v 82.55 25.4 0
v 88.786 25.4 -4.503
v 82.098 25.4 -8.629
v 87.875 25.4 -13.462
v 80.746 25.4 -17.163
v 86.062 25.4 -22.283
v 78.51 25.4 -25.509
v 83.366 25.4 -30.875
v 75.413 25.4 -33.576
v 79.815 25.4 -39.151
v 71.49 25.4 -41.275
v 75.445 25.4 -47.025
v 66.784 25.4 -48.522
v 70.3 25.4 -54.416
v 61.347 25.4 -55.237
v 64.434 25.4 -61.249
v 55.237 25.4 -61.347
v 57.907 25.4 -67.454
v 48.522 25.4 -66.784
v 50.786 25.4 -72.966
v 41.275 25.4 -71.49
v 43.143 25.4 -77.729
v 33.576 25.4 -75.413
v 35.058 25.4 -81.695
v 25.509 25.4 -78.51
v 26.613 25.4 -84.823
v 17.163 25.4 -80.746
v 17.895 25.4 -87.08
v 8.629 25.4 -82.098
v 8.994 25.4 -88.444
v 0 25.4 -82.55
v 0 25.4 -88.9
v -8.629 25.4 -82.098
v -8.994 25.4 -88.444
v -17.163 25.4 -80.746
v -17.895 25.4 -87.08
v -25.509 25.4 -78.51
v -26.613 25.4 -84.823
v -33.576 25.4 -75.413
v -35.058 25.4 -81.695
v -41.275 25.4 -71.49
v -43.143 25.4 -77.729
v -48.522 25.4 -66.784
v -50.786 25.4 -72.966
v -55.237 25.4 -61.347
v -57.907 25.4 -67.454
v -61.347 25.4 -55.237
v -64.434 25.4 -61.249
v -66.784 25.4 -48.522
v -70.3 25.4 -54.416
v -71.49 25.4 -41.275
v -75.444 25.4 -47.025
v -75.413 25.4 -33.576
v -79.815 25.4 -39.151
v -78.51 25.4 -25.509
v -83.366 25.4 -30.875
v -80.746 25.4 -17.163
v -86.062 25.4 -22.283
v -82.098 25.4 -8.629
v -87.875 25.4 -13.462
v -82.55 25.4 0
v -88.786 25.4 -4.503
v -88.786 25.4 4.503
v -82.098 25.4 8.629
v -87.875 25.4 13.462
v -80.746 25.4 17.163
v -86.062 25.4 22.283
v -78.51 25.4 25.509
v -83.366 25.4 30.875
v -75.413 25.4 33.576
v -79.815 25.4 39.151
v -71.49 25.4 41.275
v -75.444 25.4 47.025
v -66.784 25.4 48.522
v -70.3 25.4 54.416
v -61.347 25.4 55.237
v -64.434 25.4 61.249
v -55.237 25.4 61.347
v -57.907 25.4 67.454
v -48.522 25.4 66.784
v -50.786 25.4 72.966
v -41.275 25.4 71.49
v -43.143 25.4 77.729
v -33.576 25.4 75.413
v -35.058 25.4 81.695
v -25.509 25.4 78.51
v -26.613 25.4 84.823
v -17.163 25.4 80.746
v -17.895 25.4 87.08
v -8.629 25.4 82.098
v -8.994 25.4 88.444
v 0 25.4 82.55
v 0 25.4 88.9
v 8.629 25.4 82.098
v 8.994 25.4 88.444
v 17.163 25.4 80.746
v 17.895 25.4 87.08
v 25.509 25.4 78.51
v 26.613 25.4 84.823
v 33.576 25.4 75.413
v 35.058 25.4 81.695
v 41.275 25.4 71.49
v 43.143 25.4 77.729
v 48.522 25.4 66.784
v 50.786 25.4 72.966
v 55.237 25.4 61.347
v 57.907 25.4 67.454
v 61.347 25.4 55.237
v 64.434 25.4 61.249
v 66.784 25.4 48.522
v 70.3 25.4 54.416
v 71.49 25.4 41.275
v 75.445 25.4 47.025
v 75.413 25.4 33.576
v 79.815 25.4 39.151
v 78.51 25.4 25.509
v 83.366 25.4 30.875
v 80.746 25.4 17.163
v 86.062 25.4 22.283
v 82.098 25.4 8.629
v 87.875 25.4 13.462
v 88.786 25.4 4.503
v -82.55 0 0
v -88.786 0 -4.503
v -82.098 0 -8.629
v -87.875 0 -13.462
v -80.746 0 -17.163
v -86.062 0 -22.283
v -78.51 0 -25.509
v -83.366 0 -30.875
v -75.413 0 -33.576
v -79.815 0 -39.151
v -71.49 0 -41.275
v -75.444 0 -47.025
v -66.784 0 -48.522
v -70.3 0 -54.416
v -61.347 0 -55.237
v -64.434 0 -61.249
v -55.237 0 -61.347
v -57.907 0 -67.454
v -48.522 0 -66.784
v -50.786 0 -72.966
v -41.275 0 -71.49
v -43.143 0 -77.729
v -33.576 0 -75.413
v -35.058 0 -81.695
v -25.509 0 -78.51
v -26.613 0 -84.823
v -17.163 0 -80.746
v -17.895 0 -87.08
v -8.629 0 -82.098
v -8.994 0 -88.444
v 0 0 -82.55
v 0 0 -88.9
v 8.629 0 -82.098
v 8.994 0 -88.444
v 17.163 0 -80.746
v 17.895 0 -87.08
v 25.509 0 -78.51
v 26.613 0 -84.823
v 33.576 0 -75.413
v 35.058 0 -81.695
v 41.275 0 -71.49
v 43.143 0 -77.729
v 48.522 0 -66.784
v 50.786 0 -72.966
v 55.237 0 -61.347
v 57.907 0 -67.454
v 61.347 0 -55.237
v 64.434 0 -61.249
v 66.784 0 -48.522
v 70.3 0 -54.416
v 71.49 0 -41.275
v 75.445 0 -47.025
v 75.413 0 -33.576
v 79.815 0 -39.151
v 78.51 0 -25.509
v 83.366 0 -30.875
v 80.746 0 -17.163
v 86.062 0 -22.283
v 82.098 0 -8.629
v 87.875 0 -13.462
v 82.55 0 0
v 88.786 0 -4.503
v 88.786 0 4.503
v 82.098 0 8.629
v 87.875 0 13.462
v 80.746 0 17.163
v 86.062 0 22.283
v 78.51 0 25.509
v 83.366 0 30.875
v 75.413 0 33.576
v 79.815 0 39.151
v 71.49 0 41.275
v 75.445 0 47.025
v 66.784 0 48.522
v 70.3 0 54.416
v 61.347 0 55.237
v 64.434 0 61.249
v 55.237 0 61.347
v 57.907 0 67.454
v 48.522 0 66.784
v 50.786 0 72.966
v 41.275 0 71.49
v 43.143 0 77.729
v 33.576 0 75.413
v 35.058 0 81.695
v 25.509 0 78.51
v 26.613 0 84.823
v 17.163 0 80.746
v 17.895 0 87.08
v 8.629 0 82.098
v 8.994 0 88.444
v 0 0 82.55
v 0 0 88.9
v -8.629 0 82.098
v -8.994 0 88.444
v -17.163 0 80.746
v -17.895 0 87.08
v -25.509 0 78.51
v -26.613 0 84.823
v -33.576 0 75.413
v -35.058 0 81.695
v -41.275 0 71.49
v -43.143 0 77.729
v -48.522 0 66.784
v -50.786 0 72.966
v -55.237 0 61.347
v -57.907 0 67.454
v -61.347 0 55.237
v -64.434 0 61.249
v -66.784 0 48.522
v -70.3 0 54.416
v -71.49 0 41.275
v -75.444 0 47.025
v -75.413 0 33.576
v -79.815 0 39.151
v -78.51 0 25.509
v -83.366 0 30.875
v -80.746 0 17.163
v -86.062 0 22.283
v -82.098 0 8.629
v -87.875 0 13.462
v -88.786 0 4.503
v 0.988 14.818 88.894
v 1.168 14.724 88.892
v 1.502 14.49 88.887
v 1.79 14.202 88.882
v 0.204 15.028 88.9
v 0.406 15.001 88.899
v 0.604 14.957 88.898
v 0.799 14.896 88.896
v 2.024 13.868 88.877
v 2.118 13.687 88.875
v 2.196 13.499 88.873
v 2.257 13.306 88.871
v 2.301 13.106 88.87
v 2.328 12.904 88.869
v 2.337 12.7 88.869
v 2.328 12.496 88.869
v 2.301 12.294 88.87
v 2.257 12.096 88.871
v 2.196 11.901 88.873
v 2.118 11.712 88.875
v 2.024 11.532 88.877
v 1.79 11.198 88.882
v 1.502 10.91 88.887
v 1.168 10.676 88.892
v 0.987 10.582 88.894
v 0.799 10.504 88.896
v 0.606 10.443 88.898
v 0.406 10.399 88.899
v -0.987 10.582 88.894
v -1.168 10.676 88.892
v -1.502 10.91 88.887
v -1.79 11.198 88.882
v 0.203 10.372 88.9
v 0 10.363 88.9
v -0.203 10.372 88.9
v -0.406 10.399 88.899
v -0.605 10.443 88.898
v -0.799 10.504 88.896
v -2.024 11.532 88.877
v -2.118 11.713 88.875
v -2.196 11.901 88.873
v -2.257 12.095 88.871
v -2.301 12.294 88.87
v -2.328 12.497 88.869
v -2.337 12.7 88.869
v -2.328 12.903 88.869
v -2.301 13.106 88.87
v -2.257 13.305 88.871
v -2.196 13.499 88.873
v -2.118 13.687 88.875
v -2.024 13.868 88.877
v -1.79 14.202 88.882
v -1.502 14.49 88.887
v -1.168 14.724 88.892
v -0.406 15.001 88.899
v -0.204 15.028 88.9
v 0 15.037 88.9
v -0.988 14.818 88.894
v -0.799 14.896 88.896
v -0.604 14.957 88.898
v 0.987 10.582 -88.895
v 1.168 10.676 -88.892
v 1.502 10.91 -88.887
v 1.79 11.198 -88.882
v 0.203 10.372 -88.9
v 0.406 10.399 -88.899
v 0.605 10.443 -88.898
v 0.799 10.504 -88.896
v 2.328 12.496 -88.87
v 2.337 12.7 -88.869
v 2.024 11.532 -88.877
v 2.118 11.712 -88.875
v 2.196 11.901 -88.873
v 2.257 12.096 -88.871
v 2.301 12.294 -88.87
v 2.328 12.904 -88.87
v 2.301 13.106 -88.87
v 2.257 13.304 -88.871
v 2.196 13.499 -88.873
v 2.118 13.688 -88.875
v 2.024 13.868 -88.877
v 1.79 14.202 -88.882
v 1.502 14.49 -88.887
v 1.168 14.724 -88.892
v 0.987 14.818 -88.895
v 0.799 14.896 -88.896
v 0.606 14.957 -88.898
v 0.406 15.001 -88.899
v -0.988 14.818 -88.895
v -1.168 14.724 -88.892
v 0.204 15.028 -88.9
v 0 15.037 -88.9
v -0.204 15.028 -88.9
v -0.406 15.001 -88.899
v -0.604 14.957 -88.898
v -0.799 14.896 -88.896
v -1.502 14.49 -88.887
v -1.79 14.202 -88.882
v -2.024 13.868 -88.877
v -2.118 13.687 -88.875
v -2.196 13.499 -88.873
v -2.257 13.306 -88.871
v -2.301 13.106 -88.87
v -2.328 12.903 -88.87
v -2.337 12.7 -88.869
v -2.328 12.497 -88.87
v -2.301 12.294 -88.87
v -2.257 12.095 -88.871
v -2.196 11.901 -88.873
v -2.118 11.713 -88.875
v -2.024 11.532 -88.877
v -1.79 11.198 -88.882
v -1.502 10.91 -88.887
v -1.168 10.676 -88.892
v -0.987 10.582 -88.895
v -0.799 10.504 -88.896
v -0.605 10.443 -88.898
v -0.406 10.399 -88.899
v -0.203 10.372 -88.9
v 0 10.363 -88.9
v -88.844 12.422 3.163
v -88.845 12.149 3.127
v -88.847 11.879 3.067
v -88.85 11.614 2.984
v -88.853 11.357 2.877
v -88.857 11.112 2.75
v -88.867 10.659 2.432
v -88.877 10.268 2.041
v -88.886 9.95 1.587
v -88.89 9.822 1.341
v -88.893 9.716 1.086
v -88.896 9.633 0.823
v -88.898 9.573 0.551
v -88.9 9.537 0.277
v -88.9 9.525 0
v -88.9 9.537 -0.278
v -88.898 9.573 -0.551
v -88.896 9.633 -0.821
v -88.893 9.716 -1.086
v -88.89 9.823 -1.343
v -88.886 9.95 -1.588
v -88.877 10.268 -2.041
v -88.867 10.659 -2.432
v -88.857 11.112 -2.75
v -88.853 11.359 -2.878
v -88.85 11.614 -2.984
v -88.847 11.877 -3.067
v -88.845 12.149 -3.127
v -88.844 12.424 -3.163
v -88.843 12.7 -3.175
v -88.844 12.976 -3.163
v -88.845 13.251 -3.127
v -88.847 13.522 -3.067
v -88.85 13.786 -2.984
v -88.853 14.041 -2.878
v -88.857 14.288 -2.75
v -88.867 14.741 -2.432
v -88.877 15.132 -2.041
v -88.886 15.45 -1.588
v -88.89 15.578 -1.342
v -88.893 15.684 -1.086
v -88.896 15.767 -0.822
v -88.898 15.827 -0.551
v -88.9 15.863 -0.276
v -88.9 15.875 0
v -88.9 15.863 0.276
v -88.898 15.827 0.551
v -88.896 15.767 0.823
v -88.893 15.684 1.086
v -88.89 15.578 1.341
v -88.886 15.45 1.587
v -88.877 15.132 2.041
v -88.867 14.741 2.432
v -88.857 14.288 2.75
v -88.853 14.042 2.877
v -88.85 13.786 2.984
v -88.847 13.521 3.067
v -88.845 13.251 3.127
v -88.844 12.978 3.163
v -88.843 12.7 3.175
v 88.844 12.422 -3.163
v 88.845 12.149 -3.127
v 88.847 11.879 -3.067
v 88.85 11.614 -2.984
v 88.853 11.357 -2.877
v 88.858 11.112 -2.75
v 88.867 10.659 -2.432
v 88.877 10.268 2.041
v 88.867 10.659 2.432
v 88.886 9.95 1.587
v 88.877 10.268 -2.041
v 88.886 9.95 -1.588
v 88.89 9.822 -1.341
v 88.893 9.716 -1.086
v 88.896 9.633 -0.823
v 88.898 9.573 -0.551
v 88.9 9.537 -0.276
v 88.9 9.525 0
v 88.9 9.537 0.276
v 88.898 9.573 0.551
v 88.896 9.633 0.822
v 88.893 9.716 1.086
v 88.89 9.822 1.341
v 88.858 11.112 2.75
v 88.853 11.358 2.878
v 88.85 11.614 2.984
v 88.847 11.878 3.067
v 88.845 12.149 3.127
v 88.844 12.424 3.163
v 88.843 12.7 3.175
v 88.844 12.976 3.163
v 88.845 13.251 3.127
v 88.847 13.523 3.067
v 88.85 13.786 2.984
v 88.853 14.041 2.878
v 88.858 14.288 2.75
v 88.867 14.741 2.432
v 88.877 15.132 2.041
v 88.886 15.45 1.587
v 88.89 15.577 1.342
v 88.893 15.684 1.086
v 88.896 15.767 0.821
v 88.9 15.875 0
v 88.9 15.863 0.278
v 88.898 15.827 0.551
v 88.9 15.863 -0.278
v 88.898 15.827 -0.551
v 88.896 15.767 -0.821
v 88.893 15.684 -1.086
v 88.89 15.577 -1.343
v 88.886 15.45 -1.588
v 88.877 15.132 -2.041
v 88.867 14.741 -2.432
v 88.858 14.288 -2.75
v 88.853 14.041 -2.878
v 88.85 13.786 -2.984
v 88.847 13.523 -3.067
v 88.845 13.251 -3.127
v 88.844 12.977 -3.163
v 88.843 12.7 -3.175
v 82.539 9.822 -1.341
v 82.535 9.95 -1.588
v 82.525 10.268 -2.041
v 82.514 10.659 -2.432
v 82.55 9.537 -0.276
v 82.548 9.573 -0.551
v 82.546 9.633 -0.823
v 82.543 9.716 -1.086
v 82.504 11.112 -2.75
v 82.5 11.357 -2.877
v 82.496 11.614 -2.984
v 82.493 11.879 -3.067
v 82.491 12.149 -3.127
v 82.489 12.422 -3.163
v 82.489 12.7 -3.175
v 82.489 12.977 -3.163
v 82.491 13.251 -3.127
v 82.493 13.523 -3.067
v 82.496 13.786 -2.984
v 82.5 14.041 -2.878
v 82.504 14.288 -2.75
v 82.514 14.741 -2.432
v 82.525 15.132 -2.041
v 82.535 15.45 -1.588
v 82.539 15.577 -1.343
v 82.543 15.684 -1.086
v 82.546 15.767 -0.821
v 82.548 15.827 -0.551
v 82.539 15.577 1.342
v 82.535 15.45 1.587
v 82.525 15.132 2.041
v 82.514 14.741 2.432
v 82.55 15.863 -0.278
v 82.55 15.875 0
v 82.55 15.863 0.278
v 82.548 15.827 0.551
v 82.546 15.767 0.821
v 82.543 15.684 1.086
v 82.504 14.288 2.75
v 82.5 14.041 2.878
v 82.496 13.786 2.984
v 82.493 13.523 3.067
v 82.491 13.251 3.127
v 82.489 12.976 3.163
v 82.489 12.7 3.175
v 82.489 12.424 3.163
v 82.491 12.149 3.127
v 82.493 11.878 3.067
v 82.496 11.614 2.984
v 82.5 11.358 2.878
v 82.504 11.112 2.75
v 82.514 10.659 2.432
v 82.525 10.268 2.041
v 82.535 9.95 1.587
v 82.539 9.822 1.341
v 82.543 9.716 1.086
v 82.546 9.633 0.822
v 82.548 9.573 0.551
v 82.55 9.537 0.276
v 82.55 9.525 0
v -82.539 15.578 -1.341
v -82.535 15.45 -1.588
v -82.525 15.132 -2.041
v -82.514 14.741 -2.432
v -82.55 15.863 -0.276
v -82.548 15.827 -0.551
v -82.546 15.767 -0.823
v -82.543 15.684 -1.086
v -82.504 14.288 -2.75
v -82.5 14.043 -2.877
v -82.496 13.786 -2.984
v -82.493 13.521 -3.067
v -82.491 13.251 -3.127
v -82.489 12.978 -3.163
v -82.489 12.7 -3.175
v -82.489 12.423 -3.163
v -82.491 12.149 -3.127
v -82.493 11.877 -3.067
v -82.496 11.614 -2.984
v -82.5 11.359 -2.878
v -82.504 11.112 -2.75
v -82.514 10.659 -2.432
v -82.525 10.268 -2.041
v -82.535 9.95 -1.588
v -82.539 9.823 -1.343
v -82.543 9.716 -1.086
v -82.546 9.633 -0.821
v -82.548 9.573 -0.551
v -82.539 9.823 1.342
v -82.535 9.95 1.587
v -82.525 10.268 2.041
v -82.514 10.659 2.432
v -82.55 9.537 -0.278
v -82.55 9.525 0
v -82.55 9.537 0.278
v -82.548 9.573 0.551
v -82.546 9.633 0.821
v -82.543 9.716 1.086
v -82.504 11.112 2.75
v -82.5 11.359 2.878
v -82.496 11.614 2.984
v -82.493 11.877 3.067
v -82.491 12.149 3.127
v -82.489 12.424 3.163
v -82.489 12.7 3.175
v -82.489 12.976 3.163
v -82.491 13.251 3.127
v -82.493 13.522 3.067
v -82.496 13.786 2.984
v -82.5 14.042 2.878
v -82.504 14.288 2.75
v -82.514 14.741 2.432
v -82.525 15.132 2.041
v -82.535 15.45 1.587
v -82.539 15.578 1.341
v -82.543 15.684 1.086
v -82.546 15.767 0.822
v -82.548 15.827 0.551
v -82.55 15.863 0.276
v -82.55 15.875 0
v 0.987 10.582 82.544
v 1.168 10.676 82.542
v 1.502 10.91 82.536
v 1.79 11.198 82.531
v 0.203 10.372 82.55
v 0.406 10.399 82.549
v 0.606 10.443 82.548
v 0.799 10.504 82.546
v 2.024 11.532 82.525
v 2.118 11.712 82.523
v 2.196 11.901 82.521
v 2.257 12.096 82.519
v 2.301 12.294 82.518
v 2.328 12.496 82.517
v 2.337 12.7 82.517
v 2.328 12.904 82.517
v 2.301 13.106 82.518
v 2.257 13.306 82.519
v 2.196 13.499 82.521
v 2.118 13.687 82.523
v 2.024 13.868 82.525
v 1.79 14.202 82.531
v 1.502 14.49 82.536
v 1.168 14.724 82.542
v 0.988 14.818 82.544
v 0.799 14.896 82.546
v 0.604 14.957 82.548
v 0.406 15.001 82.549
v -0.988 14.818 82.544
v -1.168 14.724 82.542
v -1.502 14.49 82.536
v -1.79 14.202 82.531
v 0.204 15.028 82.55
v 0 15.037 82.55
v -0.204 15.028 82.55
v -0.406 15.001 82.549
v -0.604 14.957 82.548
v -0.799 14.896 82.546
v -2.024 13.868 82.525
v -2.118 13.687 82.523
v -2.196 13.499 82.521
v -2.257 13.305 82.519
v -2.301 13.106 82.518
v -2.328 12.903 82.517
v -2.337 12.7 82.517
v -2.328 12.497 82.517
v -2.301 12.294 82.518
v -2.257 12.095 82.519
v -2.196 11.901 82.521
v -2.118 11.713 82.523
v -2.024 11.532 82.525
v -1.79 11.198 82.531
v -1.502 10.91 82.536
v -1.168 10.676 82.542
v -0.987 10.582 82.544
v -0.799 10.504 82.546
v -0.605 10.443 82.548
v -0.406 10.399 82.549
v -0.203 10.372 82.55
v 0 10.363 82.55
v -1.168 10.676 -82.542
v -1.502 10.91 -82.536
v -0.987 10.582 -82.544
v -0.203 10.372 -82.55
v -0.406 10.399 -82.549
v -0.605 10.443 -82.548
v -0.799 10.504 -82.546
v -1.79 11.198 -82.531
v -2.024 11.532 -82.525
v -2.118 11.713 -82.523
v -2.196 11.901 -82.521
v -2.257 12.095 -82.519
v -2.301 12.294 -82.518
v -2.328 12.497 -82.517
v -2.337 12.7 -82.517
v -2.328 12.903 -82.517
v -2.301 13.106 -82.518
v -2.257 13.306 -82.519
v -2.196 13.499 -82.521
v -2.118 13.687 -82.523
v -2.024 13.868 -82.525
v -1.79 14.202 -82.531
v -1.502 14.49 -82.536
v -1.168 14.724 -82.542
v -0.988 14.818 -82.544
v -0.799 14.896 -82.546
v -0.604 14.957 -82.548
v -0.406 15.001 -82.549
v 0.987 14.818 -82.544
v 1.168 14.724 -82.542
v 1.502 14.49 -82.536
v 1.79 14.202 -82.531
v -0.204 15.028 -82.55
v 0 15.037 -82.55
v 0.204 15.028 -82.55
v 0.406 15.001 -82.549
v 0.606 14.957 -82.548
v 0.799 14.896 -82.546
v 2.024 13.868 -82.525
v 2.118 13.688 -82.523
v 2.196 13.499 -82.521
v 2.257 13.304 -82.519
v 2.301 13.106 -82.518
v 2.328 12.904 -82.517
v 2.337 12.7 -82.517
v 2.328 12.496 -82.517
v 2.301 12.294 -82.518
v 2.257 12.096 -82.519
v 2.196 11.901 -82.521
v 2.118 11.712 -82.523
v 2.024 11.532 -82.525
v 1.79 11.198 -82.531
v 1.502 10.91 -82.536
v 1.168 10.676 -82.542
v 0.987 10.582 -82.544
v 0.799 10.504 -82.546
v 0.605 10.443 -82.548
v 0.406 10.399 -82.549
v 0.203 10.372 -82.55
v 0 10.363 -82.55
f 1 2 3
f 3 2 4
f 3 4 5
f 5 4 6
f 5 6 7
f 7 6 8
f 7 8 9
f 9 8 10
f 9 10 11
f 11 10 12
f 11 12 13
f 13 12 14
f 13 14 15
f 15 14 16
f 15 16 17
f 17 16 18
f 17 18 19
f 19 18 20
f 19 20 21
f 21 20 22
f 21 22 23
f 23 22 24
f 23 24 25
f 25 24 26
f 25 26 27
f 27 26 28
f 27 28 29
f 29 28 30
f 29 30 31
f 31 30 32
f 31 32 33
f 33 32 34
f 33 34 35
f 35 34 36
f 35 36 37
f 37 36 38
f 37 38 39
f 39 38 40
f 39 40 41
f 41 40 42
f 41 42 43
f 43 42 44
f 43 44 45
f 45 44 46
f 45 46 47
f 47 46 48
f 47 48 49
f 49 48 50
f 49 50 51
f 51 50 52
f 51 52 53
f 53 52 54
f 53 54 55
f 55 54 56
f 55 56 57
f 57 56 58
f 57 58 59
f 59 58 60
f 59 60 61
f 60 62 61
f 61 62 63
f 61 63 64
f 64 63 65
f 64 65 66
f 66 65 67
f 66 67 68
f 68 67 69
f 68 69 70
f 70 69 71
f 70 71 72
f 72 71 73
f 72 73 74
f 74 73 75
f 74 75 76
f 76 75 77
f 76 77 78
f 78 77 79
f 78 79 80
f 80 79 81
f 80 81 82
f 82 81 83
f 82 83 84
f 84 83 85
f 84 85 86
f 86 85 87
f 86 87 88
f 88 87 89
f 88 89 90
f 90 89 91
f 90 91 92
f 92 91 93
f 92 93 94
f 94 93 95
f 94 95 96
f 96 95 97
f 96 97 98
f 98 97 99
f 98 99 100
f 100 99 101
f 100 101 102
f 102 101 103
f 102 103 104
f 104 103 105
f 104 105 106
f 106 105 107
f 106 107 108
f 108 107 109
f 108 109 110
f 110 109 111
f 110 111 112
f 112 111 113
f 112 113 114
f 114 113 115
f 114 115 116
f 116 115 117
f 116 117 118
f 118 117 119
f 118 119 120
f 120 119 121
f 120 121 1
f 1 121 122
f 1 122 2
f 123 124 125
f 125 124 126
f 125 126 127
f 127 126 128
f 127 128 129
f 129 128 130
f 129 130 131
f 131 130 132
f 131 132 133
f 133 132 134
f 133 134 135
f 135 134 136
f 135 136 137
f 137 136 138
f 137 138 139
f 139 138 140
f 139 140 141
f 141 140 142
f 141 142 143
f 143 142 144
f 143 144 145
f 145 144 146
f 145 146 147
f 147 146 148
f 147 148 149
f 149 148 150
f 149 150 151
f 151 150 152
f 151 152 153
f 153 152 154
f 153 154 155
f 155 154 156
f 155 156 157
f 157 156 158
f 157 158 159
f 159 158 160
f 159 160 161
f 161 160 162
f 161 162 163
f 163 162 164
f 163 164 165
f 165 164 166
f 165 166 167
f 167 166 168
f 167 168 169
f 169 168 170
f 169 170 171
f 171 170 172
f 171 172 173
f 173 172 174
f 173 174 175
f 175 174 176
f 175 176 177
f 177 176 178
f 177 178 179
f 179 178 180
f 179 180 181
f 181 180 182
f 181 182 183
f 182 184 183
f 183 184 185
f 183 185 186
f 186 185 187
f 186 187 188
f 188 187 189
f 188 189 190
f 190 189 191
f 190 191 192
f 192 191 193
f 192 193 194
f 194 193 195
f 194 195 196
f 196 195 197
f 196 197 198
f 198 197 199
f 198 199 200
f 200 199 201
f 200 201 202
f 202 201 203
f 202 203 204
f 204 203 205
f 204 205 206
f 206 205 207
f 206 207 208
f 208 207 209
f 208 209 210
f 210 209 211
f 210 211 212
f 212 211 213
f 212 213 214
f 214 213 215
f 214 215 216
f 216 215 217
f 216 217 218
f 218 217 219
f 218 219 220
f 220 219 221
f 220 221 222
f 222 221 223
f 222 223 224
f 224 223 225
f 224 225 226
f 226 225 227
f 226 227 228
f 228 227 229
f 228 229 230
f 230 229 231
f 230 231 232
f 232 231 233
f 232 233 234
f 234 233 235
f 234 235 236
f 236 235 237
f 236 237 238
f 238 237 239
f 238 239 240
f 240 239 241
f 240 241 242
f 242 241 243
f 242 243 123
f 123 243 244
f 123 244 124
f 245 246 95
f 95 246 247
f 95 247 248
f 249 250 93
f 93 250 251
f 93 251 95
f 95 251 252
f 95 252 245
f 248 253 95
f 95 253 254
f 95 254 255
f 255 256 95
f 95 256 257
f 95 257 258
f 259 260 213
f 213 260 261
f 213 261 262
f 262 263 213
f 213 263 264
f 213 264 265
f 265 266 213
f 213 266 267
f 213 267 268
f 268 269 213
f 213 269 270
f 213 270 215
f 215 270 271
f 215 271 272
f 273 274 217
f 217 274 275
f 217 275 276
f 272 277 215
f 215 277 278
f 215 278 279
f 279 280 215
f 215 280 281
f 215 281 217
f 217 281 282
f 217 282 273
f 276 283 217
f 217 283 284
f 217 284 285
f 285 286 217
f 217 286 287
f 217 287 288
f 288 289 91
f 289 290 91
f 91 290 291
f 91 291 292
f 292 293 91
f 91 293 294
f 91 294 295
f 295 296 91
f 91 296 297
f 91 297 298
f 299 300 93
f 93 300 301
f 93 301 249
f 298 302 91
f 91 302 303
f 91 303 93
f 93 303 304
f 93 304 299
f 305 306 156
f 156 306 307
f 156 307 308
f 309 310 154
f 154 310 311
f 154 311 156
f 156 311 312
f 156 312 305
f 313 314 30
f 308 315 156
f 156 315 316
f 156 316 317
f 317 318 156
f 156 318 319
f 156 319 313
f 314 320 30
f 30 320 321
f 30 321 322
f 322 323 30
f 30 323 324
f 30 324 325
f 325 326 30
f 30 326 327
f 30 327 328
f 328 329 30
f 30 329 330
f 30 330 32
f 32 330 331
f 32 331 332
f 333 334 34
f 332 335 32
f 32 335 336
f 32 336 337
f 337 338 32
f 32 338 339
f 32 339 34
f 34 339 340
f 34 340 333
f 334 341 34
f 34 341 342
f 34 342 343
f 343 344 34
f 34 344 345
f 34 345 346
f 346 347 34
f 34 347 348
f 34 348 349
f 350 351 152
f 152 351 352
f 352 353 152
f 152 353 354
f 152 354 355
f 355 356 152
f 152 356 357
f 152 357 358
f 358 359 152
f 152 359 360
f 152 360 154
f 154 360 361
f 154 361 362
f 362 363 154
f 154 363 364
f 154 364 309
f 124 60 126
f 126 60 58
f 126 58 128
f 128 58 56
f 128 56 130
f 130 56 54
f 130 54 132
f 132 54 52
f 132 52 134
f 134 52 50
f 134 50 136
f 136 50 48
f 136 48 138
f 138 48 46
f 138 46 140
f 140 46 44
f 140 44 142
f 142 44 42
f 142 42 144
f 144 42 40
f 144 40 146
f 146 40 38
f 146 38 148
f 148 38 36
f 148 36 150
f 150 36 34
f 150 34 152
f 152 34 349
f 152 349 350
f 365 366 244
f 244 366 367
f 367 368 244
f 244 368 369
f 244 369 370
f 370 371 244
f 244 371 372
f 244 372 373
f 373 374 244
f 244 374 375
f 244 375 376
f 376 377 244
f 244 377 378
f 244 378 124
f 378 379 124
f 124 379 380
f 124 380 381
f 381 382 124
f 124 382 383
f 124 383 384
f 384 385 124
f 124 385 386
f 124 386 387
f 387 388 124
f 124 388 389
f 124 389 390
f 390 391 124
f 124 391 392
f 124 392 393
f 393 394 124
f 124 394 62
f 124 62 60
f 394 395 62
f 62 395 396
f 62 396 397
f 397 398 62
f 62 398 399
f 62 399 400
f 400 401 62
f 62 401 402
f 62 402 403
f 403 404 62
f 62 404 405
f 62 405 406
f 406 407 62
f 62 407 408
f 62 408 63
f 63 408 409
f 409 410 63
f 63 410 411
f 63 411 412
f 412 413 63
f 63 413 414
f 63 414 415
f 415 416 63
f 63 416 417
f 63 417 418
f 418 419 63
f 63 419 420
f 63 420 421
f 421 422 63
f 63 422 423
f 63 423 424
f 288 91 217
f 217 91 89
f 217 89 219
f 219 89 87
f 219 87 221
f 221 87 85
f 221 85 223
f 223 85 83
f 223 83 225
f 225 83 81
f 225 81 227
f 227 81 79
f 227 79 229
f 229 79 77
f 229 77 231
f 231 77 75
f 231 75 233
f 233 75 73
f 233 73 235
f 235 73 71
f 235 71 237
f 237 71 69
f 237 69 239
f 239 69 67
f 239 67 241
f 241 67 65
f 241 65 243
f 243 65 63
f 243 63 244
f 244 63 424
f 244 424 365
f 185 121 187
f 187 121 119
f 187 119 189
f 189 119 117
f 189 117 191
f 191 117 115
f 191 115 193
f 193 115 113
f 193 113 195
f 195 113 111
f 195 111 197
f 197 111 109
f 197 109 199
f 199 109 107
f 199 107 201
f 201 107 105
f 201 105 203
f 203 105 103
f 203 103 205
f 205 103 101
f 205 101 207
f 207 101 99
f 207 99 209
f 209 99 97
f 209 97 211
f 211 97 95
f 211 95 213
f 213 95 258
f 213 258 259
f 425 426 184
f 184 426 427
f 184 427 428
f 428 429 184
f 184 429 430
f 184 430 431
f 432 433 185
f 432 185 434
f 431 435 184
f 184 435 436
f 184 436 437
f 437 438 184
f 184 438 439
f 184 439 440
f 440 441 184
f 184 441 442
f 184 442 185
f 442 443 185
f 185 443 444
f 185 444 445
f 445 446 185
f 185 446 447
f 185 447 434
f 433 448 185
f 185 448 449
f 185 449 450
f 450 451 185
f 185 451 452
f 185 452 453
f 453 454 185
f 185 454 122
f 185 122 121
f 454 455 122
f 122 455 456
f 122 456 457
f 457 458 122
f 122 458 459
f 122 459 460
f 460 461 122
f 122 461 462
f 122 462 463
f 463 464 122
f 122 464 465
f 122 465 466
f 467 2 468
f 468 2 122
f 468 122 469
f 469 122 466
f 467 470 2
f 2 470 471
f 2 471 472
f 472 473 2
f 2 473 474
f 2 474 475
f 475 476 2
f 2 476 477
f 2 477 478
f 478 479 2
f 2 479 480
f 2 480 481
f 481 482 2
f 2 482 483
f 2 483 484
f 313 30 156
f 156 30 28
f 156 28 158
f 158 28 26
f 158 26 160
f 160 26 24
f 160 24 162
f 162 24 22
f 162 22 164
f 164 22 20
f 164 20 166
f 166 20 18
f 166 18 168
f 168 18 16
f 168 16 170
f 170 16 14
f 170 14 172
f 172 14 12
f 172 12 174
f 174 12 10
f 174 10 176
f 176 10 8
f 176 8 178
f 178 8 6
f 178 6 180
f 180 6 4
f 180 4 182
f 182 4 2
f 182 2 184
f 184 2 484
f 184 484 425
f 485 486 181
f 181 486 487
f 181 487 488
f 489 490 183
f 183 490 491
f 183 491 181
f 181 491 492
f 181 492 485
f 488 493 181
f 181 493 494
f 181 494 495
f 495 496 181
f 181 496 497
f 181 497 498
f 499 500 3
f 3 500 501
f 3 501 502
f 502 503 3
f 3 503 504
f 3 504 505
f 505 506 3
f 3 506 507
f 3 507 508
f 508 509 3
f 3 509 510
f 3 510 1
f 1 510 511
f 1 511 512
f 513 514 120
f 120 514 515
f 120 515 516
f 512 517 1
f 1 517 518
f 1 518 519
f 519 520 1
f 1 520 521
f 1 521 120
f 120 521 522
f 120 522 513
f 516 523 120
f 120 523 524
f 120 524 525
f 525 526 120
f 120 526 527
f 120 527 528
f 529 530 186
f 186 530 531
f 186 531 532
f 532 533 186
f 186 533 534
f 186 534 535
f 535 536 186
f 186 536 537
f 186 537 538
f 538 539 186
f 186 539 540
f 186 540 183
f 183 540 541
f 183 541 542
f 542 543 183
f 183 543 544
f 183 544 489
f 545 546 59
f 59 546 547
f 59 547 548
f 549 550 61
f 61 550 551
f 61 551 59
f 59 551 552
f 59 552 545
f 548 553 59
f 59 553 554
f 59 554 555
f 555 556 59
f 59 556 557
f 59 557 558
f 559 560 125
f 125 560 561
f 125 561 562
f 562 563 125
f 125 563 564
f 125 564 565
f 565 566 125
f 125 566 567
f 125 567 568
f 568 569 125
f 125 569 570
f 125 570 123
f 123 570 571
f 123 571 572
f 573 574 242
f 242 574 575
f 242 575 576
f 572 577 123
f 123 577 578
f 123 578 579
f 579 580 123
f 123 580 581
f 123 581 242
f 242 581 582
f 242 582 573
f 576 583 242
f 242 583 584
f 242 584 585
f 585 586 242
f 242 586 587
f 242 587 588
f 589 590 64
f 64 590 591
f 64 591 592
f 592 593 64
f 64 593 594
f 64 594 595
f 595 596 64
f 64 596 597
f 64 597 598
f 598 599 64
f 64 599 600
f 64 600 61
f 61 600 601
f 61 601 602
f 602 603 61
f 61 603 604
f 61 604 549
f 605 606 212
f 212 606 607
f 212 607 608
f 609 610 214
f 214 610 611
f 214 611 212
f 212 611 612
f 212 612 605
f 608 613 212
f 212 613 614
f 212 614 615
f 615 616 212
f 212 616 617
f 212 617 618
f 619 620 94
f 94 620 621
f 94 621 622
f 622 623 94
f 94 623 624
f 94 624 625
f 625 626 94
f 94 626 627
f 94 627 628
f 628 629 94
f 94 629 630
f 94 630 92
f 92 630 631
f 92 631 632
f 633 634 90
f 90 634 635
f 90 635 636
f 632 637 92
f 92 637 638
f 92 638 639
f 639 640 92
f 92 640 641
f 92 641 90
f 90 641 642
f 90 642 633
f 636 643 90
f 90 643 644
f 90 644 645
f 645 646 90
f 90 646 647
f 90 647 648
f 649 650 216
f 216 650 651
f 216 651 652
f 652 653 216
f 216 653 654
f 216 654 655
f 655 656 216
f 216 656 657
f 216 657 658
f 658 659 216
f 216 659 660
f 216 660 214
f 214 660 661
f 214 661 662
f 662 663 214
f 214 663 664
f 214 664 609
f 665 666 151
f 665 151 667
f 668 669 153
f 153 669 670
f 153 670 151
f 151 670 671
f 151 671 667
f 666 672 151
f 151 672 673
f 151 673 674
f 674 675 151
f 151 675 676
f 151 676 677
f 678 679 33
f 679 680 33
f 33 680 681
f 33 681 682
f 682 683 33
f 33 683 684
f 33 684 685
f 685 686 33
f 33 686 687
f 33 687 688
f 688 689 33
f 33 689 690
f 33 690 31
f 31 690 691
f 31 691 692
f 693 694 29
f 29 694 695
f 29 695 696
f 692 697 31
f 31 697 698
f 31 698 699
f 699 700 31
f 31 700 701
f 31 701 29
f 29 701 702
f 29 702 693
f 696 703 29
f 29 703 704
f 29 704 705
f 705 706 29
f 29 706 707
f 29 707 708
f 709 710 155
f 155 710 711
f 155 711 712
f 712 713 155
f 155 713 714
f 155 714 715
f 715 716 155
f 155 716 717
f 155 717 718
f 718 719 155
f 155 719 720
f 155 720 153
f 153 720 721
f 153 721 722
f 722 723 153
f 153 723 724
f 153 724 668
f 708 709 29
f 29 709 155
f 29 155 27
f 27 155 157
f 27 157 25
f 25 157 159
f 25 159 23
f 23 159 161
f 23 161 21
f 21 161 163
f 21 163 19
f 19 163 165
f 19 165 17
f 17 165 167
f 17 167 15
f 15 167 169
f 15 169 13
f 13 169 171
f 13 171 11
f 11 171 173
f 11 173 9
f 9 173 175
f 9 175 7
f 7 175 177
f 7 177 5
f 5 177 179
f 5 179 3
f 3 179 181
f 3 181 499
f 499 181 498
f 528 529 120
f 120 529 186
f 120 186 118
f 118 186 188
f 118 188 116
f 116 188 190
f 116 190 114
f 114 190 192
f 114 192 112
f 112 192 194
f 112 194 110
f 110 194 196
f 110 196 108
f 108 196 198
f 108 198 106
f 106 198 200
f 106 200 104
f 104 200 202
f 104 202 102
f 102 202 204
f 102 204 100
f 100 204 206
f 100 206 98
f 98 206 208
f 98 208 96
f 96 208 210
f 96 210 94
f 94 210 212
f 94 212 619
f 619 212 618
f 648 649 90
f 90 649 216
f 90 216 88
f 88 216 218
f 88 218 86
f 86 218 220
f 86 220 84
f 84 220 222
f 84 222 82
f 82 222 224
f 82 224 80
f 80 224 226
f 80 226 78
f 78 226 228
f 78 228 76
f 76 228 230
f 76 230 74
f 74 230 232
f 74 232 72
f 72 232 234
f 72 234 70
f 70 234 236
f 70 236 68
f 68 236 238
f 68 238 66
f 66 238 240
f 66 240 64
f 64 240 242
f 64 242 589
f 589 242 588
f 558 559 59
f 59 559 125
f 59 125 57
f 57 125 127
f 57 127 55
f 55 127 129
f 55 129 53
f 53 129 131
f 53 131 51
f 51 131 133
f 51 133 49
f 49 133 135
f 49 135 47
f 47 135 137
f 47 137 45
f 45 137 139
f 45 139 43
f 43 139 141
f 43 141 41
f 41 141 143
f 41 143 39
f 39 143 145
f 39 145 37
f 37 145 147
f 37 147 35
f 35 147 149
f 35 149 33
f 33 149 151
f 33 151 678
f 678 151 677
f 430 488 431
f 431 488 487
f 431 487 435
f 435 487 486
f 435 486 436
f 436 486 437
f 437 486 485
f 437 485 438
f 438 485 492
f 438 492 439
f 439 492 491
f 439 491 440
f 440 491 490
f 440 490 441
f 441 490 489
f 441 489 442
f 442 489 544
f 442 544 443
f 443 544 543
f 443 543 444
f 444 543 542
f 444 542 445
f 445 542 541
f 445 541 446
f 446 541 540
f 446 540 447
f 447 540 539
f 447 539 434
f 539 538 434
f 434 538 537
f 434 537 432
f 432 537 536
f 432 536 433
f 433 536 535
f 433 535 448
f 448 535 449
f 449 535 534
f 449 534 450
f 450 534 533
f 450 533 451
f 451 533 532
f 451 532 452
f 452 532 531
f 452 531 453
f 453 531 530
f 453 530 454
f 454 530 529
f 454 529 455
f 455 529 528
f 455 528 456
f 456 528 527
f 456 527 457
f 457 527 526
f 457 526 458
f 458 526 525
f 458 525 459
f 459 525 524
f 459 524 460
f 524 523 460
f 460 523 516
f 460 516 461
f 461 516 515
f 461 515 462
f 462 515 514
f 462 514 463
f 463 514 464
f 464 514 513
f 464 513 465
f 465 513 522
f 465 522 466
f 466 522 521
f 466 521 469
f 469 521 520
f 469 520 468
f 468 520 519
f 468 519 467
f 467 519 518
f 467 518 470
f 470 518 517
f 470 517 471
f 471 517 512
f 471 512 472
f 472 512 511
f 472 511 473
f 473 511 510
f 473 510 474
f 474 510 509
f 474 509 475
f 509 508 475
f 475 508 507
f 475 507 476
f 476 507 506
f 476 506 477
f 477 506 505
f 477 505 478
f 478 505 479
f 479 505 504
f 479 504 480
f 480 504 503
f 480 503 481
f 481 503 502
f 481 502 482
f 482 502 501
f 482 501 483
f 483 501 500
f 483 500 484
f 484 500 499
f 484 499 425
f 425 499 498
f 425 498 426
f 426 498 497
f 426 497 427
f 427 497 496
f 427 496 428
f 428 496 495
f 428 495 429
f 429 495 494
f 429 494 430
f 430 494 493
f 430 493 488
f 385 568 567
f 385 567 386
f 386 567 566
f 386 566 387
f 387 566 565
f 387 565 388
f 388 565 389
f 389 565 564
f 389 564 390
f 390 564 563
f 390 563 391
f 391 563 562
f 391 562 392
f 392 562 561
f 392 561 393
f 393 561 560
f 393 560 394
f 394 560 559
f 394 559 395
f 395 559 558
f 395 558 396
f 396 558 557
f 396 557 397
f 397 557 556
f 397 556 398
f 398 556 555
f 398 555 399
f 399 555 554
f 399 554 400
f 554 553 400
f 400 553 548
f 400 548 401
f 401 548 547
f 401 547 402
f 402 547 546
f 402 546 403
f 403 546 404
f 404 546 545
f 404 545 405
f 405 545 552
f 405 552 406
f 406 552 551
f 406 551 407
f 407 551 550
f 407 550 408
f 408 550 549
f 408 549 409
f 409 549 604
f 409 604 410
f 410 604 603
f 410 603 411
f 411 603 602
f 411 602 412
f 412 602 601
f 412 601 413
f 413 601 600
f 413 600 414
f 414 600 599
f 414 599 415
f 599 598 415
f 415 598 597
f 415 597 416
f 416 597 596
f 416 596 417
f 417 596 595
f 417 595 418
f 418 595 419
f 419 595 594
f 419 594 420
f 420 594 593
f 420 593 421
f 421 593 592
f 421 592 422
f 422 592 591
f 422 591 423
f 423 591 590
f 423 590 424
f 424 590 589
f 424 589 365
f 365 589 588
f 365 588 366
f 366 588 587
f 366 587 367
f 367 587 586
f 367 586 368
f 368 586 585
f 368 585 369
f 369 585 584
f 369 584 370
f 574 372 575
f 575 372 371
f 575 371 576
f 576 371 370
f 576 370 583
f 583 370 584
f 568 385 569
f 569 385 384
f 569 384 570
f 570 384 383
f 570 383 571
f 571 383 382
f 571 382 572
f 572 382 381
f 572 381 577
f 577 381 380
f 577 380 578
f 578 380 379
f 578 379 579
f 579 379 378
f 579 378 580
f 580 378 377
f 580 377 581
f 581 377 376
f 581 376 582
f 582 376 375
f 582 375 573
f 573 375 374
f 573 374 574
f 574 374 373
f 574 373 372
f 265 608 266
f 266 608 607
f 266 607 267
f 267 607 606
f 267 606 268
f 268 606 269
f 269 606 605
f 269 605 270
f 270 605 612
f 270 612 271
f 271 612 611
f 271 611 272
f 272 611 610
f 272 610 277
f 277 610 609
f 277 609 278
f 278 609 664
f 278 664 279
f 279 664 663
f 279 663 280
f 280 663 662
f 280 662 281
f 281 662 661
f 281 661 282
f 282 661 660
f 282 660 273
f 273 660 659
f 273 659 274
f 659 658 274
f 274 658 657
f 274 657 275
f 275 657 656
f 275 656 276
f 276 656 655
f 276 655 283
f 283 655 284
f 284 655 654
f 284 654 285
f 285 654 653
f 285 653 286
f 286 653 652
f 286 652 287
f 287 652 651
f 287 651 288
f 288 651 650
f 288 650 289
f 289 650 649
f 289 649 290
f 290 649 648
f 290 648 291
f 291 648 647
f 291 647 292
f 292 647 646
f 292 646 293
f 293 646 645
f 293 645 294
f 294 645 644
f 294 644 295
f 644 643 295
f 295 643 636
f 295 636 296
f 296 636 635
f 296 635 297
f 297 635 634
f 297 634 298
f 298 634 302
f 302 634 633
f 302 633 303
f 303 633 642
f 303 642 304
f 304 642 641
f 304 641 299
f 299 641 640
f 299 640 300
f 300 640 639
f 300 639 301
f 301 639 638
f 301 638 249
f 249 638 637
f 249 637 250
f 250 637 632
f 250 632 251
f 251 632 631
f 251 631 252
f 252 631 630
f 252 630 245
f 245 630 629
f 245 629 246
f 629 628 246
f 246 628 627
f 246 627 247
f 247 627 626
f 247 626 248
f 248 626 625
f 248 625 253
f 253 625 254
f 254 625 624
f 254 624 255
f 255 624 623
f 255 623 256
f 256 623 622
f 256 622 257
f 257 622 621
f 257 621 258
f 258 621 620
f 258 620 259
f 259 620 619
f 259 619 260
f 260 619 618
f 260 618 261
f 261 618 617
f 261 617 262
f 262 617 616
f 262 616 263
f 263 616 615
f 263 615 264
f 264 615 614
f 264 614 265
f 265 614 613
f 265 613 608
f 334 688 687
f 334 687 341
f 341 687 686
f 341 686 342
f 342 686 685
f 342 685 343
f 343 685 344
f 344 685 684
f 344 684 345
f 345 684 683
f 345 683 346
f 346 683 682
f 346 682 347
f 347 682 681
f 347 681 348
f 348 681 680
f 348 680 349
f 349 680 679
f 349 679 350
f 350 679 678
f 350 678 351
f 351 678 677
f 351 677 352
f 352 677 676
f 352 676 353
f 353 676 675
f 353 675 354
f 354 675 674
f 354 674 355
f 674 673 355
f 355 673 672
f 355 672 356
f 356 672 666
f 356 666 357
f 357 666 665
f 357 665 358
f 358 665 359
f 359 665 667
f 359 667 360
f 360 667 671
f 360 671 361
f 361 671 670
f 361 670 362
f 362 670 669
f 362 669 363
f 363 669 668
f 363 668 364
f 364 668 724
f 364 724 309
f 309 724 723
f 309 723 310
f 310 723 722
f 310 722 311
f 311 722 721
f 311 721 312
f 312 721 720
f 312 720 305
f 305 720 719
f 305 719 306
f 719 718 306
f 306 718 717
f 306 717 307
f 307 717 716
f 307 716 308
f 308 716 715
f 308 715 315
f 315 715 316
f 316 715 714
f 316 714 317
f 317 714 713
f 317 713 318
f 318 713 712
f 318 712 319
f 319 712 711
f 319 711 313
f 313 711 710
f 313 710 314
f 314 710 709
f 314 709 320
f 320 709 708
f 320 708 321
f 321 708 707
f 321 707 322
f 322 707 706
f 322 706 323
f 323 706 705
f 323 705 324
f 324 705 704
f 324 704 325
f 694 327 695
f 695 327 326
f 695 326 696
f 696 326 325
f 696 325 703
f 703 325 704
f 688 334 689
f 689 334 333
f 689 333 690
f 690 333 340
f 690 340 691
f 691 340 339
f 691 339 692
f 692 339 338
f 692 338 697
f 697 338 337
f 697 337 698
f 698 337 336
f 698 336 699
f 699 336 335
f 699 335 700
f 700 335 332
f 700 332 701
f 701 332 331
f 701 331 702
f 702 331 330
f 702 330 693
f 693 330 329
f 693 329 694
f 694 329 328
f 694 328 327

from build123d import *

# Parameters (mm, degrees)
SKETCH1_R               = 88.9
SKETCH1_R_2             = 82.55
BOSS_EXTRUDE1_DEPTH     = 25.4
SKETCH2_R               = 3.175
CUT_EXTRUDE1_DEPTH      = 89.9
CUT_EXTRUDE1_DEPTH_BACK = 89.9
SKETCH3_R               = 2.3368
CUT_EXTRUDE2_DEPTH      = 89.9000001
CUT_EXTRUDE2_DEPTH_BACK = 89.9000001


with BuildPart() as part:
    # Sketch1 → Boss-Extrude1 (new body)
    with BuildSketch(Plane(origin=(0, 0, 0), x_dir=(1, 0, 0), z_dir=(0, 1, 0))):
        Circle(SKETCH1_R)
        Circle(SKETCH1_R_2, mode=Mode.SUBTRACT)
    extrude(amount=BOSS_EXTRUDE1_DEPTH)

    # Sketch2 → Cut-Extrude1 (cut, two sides)
    with BuildSketch(Plane(origin=(0, 0, 0), x_dir=(0, 0, -1), z_dir=(1, 0, 0))) as cut_extrude1_sk:
        with Locations((0, 12.7)):
            Circle(SKETCH2_R)
    extrude(amount=CUT_EXTRUDE1_DEPTH, mode=Mode.SUBTRACT)
    extrude(cut_extrude1_sk.sketch, amount=-CUT_EXTRUDE1_DEPTH_BACK, mode=Mode.SUBTRACT)

    # Sketch3 → Cut-Extrude2 (cut, two sides)
    with BuildSketch(Plane.XY) as cut_extrude2_sk:
        with Locations((0, 12.7)):
            Circle(SKETCH3_R)
    extrude(amount=CUT_EXTRUDE2_DEPTH, mode=Mode.SUBTRACT)
    extrude(cut_extrude2_sk.sketch, amount=-CUT_EXTRUDE2_DEPTH_BACK, mode=Mode.SUBTRACT)


solid = part.part
